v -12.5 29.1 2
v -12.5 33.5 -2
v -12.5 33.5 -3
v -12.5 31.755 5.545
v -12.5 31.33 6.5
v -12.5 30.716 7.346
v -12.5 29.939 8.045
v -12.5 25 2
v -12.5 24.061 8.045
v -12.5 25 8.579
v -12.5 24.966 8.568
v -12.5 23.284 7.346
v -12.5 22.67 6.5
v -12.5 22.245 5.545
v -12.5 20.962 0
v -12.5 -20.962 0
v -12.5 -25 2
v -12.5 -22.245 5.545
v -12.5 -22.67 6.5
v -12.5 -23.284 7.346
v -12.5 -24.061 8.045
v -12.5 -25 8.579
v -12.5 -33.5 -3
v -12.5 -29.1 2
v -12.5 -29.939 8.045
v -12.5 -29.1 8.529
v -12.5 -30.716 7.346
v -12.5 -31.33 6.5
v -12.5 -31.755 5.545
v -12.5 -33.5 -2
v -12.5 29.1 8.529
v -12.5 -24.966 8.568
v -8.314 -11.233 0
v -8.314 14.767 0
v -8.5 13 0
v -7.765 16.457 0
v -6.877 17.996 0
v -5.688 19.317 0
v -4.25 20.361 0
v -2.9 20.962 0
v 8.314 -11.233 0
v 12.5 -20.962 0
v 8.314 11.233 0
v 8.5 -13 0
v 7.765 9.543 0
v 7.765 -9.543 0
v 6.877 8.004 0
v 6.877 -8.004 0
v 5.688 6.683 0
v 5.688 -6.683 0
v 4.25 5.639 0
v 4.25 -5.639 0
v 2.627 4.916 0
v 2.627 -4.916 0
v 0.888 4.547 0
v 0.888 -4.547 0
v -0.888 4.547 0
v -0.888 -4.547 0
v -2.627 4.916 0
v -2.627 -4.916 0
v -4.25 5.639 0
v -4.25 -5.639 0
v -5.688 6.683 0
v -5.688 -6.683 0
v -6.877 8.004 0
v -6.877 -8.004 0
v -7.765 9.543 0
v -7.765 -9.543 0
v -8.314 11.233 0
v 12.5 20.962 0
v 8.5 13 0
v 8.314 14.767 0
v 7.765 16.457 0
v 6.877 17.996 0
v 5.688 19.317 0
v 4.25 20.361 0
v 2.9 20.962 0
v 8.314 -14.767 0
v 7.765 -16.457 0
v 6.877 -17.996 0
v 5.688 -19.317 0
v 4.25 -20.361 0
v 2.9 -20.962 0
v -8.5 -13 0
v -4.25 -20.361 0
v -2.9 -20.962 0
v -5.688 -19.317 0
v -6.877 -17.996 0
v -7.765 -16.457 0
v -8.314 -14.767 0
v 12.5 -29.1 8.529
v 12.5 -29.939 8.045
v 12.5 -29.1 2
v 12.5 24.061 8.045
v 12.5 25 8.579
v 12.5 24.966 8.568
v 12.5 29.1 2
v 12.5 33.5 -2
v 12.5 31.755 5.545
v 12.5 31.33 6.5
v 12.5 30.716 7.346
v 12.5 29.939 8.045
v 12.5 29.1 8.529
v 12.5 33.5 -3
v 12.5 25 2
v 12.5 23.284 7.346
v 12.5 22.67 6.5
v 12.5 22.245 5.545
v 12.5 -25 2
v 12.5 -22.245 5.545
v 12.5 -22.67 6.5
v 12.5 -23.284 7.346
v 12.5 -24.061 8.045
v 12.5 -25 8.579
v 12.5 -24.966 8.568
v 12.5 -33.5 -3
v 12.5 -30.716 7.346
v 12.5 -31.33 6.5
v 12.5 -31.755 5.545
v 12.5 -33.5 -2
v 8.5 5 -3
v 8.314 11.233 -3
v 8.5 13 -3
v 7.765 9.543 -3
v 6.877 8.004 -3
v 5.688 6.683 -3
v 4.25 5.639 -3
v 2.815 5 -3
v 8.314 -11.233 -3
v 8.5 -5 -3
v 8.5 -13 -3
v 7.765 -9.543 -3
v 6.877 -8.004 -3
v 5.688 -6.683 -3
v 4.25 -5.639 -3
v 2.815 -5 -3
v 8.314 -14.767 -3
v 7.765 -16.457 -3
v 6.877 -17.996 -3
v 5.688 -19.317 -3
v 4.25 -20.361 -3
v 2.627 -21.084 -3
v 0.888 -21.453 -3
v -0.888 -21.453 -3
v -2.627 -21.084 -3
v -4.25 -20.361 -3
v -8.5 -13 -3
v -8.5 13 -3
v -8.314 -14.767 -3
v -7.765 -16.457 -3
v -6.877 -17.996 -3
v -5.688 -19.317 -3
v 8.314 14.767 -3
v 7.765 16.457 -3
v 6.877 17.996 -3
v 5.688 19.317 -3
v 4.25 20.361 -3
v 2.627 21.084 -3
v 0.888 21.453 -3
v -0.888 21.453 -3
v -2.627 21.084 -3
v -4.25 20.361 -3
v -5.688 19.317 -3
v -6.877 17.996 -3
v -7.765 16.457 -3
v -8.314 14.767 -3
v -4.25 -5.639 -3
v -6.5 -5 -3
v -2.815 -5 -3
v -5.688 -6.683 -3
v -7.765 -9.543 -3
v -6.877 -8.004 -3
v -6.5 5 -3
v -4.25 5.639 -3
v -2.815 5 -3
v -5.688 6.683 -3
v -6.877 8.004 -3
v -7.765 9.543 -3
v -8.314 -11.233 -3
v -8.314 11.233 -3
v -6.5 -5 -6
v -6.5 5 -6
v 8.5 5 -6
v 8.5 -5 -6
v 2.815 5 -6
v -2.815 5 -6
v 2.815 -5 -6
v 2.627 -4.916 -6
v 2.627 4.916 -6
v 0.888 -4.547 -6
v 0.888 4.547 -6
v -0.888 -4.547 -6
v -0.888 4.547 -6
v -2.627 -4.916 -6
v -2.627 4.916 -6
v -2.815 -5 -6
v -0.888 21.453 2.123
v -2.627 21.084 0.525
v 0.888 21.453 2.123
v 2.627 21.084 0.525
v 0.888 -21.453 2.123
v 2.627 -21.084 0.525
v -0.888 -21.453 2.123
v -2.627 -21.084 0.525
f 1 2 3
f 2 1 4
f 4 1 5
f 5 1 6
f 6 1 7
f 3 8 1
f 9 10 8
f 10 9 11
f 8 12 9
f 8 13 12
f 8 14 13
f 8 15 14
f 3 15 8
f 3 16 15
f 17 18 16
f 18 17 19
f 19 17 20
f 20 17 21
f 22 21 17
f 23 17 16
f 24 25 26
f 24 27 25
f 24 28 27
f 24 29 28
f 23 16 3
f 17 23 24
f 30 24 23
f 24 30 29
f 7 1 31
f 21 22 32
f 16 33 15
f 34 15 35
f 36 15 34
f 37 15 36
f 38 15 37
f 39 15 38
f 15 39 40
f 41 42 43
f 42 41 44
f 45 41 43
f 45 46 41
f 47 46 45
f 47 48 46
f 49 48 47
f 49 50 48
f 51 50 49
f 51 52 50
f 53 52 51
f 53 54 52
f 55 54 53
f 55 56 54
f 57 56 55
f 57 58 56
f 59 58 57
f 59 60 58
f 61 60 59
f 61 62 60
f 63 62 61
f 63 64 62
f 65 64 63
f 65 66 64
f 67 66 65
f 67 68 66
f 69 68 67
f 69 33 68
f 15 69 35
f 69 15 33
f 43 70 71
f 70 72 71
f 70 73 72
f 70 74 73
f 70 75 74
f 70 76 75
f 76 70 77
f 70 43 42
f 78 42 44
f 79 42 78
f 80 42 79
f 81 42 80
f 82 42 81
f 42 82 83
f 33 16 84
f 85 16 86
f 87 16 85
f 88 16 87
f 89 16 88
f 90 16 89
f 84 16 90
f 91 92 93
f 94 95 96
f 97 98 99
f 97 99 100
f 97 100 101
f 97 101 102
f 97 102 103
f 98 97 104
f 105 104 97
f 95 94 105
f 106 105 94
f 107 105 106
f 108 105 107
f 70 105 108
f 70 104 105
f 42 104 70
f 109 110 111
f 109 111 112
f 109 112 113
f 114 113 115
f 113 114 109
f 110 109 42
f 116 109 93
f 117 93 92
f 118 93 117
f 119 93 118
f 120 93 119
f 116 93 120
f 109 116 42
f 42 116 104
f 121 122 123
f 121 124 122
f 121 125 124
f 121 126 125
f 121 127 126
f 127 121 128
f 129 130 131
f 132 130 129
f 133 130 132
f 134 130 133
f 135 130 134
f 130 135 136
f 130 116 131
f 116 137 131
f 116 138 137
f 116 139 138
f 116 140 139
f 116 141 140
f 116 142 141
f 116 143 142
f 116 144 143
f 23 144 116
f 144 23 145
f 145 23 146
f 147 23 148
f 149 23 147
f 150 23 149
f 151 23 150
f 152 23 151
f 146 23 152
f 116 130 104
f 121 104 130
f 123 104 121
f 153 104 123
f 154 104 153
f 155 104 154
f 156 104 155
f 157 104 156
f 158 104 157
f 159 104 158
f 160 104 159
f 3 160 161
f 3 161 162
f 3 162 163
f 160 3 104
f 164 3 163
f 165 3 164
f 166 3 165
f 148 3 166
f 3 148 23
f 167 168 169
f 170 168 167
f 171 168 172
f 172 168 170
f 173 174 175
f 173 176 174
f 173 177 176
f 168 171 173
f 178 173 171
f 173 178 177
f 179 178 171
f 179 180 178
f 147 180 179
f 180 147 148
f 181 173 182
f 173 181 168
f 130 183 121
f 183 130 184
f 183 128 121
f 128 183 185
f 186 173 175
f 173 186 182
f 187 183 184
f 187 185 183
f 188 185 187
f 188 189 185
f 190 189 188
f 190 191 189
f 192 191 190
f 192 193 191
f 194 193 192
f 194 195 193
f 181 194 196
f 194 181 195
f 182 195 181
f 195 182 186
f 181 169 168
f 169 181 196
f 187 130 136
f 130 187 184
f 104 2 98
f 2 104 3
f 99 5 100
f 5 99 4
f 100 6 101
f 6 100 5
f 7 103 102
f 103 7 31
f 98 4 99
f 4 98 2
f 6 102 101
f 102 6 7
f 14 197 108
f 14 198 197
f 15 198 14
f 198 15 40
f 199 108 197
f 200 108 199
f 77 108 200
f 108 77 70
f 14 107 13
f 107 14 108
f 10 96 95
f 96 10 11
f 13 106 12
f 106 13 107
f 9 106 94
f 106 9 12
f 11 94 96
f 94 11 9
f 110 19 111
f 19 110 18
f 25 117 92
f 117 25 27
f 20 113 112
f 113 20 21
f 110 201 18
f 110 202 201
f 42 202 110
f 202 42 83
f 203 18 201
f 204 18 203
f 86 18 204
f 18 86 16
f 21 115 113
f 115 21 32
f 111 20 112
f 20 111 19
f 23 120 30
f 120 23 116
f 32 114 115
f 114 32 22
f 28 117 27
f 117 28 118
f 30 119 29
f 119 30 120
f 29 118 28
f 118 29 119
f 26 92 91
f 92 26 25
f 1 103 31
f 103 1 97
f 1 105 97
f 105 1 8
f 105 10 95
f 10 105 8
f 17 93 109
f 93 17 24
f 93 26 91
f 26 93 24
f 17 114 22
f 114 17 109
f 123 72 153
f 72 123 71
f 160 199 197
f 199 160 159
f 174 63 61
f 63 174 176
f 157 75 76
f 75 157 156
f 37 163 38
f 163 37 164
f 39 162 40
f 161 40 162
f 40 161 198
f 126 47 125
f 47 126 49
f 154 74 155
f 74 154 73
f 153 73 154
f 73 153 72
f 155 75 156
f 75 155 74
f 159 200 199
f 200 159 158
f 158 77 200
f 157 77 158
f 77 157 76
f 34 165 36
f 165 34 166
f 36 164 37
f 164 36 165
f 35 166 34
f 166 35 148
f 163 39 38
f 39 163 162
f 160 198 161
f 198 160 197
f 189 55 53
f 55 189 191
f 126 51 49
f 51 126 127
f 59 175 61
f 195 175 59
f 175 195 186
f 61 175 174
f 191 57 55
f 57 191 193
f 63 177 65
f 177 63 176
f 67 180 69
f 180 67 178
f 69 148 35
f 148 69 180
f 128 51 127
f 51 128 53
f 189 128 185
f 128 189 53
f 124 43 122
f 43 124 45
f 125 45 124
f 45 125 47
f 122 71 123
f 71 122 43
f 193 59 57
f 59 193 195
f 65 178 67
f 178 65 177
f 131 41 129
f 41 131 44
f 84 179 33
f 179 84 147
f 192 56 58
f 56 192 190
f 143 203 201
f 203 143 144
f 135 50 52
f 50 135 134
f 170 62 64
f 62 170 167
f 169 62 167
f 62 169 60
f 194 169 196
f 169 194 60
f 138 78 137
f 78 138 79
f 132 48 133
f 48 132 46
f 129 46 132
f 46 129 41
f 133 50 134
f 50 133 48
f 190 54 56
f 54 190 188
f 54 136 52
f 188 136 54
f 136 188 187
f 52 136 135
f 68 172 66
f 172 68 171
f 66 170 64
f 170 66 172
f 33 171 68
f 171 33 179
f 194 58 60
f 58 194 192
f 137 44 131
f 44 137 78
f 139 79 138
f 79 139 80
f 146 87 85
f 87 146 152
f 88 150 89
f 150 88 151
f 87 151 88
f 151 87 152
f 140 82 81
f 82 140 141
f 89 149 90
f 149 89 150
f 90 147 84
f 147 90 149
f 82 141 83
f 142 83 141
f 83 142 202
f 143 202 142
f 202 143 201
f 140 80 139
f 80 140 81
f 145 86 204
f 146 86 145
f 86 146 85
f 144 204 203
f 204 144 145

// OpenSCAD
t = 5;

rx = 100;
rdy = 4.1;
roy = 30;
royl = 50;





module rails(oz=2) {
    
  translate([-rx/2,roy/2,oz]) cube([rx,rdy,rdy]);
  mirror([0,1,0]){
    translate([-rx/2,roy/2,oz]) cube([rx,rdy,rdy]);
  }
    
}

module railsLow(oz=2) {
    
  translate([-rx/2,royl/2,oz]) cube([rx,rdy,rdy]);
  mirror([0,1,0]){
    translate([-rx/2,royl/2,oz]) cube([rx,rdy,rdy]);
  }
    
}


difference(){
union(){
  translate([-25/2,-60/2,-3])cube([25,60,3]);
  translate([-25/2 + 6,-10/2,-6])cube([15,10,6]);
    
  hull(){
    translate([-25/2,27,4])rotate([0,90,0])cylinder(r=5,h=25,$fn=30);
    translate([-25/2,27-13/2,-3])cube([25,13,1]);
  }
  hull(){
    translate([-25/2,-27,4])rotate([0,90,0])cylinder(r=5,h=25,$fn=30);
    translate([-25/2,-27-13/2,-3])cube([25,13,1]);
  }
  

}

  
  translate([0,26/2,-7])cylinder(r=17/2,h=10,$fn=30);

  translate([0,-26/2,-7])cylinder(r=17/2,h=10,$fn=30);
railsLow(oz=2);
railsLow(oz=5);
}
